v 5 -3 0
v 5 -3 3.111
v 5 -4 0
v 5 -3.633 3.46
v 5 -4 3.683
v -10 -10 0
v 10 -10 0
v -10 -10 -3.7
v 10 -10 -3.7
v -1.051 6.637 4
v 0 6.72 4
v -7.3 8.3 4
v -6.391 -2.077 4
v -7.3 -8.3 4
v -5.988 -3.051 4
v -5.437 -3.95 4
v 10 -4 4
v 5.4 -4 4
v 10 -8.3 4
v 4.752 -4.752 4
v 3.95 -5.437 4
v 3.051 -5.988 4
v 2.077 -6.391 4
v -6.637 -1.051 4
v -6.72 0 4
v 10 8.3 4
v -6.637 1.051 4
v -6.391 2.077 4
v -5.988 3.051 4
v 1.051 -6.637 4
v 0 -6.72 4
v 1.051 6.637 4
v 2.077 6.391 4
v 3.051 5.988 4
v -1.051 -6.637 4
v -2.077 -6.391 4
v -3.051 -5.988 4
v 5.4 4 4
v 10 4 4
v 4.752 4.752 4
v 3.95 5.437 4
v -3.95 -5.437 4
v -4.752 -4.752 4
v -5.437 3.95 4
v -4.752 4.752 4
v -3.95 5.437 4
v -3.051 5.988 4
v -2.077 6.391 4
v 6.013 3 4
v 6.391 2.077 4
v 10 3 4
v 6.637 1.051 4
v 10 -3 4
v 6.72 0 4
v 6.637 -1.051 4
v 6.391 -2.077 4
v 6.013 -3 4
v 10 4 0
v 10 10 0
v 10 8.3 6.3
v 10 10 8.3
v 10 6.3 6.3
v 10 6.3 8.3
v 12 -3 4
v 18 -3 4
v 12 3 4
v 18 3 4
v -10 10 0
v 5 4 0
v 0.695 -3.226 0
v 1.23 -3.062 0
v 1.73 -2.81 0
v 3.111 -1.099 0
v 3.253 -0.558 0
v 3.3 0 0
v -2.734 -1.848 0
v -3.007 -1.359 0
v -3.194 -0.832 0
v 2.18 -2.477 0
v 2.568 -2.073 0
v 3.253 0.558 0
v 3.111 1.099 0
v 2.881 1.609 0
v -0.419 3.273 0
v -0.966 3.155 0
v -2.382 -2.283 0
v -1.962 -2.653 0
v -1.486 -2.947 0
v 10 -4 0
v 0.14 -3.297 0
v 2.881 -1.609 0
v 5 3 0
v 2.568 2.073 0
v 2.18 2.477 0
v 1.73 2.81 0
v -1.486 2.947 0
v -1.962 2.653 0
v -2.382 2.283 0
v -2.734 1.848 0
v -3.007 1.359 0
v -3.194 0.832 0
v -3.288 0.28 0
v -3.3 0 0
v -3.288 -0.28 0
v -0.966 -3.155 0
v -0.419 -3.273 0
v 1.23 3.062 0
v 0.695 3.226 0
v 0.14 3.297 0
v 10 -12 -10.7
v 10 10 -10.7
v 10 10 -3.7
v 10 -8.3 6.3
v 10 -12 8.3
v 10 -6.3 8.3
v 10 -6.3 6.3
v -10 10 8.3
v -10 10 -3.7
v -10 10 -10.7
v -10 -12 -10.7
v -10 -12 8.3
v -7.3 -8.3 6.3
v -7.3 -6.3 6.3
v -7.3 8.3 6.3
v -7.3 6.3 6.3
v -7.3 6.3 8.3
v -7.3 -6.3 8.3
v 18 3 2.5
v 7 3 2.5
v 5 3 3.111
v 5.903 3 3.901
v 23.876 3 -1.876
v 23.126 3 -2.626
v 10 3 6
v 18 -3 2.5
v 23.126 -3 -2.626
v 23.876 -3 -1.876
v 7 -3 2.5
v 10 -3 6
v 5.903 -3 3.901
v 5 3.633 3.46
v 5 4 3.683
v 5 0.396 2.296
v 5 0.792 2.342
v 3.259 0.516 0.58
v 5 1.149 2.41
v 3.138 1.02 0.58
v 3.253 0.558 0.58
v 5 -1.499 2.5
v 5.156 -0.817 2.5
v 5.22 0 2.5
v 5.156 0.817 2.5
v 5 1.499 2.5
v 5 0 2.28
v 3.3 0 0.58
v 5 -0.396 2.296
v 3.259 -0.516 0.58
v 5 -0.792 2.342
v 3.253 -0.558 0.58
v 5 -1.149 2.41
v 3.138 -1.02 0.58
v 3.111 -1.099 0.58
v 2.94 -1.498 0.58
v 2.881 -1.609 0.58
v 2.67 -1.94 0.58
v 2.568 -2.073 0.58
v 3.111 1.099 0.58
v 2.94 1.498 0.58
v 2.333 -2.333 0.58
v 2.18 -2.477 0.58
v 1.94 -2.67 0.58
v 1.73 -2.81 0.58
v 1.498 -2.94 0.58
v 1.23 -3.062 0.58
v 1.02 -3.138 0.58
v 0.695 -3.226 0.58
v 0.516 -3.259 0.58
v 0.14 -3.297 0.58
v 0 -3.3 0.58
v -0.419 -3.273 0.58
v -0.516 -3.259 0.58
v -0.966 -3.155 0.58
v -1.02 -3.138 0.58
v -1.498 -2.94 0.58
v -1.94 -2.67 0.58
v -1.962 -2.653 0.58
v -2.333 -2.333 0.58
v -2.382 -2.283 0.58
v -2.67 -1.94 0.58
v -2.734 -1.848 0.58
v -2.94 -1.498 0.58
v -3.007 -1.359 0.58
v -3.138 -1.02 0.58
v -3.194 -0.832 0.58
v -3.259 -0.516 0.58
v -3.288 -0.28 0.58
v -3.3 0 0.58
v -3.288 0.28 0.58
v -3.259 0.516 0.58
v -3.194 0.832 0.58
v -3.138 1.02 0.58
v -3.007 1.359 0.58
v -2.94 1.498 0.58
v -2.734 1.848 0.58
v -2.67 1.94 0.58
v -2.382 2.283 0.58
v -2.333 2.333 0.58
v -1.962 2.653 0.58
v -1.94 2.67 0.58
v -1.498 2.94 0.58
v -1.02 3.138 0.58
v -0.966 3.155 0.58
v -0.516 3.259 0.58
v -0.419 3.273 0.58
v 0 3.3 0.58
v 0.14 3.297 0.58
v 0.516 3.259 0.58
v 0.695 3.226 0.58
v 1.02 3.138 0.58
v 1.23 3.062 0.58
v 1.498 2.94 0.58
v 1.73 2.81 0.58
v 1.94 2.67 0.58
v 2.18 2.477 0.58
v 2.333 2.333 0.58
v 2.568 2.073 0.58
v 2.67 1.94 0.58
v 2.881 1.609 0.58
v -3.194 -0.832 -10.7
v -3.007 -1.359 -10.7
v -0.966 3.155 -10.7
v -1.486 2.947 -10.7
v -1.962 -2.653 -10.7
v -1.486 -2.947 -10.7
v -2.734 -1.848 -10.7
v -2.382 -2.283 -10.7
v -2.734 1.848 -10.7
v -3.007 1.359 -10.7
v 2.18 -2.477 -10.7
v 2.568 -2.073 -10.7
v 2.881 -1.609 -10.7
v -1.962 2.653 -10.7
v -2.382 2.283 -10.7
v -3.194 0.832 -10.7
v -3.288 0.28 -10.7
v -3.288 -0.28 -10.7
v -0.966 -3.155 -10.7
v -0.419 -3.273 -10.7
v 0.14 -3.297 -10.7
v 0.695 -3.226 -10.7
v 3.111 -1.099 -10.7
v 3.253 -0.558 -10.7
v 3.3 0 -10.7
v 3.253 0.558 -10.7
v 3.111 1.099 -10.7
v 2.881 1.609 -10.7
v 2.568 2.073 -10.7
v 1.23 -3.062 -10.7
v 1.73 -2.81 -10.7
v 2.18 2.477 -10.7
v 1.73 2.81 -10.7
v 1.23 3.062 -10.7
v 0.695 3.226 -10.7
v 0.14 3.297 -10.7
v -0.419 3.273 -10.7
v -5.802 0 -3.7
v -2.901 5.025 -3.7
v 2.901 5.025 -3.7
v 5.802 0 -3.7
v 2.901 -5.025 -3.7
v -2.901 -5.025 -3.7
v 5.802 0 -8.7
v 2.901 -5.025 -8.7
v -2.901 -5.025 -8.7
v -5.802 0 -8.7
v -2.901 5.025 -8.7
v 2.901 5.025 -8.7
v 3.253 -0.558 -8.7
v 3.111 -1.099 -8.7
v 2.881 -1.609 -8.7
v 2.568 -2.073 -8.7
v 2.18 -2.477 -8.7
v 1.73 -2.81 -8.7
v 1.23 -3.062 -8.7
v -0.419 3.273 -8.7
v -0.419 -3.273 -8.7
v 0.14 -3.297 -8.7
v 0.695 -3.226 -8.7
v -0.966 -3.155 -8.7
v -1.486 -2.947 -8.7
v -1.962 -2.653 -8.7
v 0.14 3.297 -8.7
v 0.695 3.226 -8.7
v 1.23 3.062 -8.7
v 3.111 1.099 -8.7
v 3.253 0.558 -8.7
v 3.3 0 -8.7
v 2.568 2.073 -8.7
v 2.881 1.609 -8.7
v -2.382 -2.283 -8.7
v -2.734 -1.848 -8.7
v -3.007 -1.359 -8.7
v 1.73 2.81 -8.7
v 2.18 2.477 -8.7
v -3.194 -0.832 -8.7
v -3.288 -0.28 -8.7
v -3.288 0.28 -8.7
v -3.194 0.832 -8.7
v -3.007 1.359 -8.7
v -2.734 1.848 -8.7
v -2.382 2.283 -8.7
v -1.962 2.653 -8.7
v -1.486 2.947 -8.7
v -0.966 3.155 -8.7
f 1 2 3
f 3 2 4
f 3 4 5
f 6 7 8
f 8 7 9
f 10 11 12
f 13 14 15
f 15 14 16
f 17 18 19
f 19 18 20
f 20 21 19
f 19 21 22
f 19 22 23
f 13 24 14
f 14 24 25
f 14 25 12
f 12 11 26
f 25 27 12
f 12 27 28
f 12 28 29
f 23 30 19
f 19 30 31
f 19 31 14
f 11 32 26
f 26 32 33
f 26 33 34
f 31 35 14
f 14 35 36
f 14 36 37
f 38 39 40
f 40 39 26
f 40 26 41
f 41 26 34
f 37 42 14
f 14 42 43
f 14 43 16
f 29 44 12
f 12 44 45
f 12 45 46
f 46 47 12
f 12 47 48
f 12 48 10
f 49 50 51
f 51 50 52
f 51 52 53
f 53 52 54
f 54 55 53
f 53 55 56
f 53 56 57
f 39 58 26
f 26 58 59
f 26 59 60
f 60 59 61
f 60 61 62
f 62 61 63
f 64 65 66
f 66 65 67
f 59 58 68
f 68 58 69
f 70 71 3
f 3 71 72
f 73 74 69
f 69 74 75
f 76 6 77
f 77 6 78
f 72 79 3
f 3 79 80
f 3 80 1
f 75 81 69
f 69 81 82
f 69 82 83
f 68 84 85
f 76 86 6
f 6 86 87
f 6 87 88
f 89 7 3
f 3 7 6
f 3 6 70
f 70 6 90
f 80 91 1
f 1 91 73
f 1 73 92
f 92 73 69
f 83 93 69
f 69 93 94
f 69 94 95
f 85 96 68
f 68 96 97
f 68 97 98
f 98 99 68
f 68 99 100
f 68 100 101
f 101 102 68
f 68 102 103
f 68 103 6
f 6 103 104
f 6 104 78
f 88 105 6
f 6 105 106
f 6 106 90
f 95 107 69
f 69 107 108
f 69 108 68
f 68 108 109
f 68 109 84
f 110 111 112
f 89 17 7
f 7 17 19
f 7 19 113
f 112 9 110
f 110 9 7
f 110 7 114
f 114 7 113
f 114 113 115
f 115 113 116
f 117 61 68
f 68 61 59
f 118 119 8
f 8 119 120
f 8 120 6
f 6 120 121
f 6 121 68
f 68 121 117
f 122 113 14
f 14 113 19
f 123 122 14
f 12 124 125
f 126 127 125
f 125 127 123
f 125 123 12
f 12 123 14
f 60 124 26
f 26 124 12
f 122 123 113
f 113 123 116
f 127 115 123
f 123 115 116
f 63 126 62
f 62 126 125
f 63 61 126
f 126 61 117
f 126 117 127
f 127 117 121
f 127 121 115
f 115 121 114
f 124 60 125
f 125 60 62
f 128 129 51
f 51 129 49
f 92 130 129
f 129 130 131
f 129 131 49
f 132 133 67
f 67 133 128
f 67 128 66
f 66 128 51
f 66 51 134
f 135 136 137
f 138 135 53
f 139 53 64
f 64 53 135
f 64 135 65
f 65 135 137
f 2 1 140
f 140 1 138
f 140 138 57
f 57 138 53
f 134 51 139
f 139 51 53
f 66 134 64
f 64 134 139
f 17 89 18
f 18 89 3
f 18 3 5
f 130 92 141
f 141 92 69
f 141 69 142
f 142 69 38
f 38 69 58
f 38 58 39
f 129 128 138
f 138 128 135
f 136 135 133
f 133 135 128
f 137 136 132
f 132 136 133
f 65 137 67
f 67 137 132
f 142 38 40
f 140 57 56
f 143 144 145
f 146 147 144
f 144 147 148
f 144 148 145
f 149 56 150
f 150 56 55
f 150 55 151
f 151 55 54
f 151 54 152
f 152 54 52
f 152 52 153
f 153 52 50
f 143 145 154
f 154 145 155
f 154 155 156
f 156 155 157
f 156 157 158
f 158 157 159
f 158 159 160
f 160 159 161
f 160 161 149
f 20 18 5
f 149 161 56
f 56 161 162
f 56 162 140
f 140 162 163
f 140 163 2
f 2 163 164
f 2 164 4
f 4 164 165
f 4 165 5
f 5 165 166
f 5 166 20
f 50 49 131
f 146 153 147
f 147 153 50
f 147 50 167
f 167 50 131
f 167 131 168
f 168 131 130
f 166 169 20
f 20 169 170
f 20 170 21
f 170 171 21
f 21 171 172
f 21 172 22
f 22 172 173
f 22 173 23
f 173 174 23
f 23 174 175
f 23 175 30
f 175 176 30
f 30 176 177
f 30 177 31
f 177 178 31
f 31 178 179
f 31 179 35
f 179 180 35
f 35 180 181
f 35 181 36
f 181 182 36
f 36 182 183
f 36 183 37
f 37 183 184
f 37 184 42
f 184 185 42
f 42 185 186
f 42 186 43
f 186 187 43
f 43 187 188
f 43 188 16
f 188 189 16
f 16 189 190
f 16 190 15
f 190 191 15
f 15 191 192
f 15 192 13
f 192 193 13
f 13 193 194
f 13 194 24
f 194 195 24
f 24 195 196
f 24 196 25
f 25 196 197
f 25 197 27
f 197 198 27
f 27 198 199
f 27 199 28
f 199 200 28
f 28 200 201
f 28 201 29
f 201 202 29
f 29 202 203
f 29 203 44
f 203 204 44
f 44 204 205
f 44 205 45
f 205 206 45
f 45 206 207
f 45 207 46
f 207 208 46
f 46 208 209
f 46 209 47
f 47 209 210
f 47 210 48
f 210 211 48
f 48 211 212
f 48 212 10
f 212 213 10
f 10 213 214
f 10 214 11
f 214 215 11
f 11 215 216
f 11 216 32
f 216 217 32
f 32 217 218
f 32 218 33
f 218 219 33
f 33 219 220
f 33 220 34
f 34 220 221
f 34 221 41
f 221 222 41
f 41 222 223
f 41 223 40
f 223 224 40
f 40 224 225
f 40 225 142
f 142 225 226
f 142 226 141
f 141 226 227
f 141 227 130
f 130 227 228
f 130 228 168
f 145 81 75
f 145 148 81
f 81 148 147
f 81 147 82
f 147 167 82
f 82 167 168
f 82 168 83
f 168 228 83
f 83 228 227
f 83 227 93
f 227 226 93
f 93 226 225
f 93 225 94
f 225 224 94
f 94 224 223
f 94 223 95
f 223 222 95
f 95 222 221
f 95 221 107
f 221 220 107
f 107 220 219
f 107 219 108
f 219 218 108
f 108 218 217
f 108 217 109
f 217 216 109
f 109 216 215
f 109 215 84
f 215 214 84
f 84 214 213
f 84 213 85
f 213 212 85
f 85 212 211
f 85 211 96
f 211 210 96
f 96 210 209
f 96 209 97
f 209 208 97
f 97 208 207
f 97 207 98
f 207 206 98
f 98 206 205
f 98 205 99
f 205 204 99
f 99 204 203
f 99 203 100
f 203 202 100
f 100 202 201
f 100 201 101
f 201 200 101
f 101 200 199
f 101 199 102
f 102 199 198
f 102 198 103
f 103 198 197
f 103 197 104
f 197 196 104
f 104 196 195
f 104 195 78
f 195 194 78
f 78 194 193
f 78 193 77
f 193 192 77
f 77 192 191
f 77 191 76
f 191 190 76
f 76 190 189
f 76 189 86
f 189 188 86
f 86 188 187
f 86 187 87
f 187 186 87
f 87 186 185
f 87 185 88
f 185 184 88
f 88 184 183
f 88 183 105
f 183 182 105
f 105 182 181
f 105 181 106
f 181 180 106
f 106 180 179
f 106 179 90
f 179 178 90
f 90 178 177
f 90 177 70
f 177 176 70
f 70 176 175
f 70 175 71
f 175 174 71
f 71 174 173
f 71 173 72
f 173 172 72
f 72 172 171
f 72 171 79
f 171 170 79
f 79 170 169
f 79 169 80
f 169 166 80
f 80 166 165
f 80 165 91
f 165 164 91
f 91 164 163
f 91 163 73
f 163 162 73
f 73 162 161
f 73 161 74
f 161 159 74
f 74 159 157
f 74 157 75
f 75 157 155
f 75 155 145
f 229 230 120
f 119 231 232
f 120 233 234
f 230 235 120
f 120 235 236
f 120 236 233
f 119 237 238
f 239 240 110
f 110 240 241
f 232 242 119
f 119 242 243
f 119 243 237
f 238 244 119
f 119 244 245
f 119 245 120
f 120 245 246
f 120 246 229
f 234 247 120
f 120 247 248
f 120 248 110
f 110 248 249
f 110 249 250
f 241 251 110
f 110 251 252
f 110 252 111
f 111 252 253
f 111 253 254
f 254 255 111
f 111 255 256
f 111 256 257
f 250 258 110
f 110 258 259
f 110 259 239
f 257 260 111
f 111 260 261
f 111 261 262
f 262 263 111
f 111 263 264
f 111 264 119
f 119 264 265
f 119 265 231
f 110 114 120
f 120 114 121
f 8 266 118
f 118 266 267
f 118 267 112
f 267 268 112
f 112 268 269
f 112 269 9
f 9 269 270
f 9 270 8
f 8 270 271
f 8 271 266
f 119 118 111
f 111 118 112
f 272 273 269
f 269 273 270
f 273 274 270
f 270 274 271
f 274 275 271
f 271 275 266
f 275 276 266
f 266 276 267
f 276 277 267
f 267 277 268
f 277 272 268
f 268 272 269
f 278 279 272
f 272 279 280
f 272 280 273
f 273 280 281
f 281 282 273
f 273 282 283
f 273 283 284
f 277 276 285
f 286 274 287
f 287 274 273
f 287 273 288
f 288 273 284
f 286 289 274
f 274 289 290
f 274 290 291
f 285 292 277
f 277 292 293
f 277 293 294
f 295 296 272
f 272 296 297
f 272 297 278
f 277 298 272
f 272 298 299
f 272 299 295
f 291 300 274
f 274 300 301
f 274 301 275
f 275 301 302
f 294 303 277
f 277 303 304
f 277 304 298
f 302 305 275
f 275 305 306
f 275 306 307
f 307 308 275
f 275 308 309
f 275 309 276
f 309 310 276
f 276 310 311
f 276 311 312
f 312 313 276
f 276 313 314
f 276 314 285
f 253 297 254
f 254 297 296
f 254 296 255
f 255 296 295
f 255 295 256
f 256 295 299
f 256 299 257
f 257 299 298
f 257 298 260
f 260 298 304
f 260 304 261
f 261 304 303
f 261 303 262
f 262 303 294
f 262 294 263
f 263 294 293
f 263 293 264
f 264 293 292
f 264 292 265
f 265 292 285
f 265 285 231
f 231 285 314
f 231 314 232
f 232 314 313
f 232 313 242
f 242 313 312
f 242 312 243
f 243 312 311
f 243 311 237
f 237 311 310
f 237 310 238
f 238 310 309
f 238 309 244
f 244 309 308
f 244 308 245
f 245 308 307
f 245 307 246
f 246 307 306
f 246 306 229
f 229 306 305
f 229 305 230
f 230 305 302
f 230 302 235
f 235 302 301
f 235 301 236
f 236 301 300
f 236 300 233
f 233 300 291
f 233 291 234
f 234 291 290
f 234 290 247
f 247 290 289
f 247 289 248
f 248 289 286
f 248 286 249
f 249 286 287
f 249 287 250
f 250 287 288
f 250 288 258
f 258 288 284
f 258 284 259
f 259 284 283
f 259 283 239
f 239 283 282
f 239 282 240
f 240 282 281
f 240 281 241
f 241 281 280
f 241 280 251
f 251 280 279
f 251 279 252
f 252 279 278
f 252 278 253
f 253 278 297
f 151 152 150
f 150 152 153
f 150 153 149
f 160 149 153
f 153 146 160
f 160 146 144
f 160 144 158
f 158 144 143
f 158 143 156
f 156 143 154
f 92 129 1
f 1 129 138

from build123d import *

# Parameters (mm, degrees)
CROQUIS1_W               = 20
CROQUIS1_H               = 20
CROQUIS1_R               = 3.1
SALIENTE_EXTRUIR1_DEPTH  = 4
SALIENTE_EXTRUIR2_DEPTH  = 2.3
SALIENTE_EXTRUIR4_DEPTH  = 2
SALIENTE_EXTRUIR5_DEPTH  = 4
SALIENTE_EXTRUIR6_START  = -6
SALIENTE_EXTRUIR6_DEPTH  = 6
CROQUIS10_W              = 5
CROQUIS10_H              = 1
CORTAR_EXTRUIR2_DEPTH    = 4
CORTAR_EXTRUIR3_START    = -13
CROQUIS11_W              = 2.5
CROQUIS11_H              = 6
CORTAR_EXTRUIR3_DEPTH    = 13
SALIENTE_EXTRUIR7_START  = -6
SALIENTE_EXTRUIR7_DEPTH  = 6
CROQUIS14_W              = 20
CROQUIS14_H              = 19
SALIENTE_EXTRUIR8_DEPTH  = 2
CROQUIS15_W              = 20
CROQUIS15_H              = 7
SALIENTE_EXTRUIR9_DEPTH  = 20
CORTAR_EXTRUIR4_DEPTH    = 5
CROQUIS17_R              = 3.3
CORTAR_EXTRUIR5_DEPTH    = 2
SALIENTE_EXTRUIR10_START = -6
SALIENTE_EXTRUIR10_DEPTH = 6


with BuildPart() as part:
    # Croquis1 → Saliente-Extruir1 (new body)
    with BuildSketch(Plane.XY):
        Rectangle(CROQUIS1_W, CROQUIS1_H)
        Circle(CROQUIS1_R, mode=Mode.SUBTRACT)
    extrude(amount=SALIENTE_EXTRUIR1_DEPTH)

    # Croquis3 → Saliente-Extruir2 (add)
    with BuildSketch(Plane.XY.offset(4)):
        Polygon((10, 10), (-10, 10), (-10, -10), (10, -10), (10, -8.3), (-7.3, -8.3), (-7.3, 8.3), (10, 8.3), align=None)
    extrude(amount=SALIENTE_EXTRUIR2_DEPTH)

    # Croquis6 → Saliente-Extruir4 (add)
    with BuildSketch(Plane.XY.offset(6.3)):
        Polygon((10, 10), (10, 6.3), (-7.3, 6.3), (-7.3, -6.3), (10, -6.3), (10, -10), (-10, -10), (-10, 10), align=None)
    extrude(amount=SALIENTE_EXTRUIR4_DEPTH)

    # Croquis7 → Saliente-Extruir5 (add)
    with BuildSketch(Plane.XY.offset(4)):
        Polygon((10, 0), (10, 3), (18, 3), (18, 0), (18, -3), (10, -3), align=None)
    extrude(amount=-SALIENTE_EXTRUIR5_DEPTH)

    # Croquis9 → Saliente-Extruir6 (add)
    with BuildSketch(Plane.XZ.offset(3).offset(SALIENTE_EXTRUIR6_START)):
        Polygon((12, 4), (10, 6), (10, 4), align=None)
    extrude(amount=SALIENTE_EXTRUIR6_DEPTH)

    # Croquis10 → Cortar-Extruir2 (cut)
    with BuildSketch(Plane.XY.offset(4)):
        with Locations((7.5, 3.5)):
            Rectangle(CROQUIS10_W, CROQUIS10_H)
        with Locations((7.5, -3.5)):
            Rectangle(CROQUIS10_W, CROQUIS10_H)
    extrude(amount=-CORTAR_EXTRUIR2_DEPTH, mode=Mode.SUBTRACT)

    # Croquis11 → Cortar-Extruir3 (cut)
    with BuildSketch(Plane(origin=(18, 0, 0), x_dir=(0, 0, -1), z_dir=(1, 0, 0)).offset(CORTAR_EXTRUIR3_START)):
        with Locations((-1.25, 0)):
            Rectangle(CROQUIS11_W, CROQUIS11_H)
    extrude(amount=CORTAR_EXTRUIR3_DEPTH, mode=Mode.SUBTRACT)

    # Croquis12 → Saliente-Extruir7 (add)
    with BuildSketch(Plane(origin=(0, 3, 0), x_dir=(1, 0, 0), z_dir=(0, 1, 0)).offset(SALIENTE_EXTRUIR7_START)):
        Polygon((18, -2.5), (23.125934171, 2.625934171), (23.875934171, 1.875934171), (18, -4), align=None)
    extrude(amount=SALIENTE_EXTRUIR7_DEPTH)

    # Croquis13 → Refrentado para tornillo tapón con cabeza plana de clavija de M61 (revolve, cut)
    with BuildSketch(Plane(origin=(0, 0, 4), x_dir=(0, -1, 0), z_dir=(1, 0, 0))):
        Polygon((0, 0), (0, 6.625934171), (3.3, 6.625934171), (3.3, 3.42), (6.72, 0), align=None)
    revolve(axis=Axis((0, 0, 10.35), (0, 0, -1)), mode=Mode.SUBTRACT)

    # Croquis14 → Saliente-Extruir8 (add)
    with BuildSketch(Plane.XZ.offset(10)):
        with Locations((0, -1.2)):
            Rectangle(CROQUIS14_W, CROQUIS14_H)
    extrude(amount=SALIENTE_EXTRUIR8_DEPTH)

    # Croquis15 → Saliente-Extruir9 (add)
    with BuildSketch(Plane(origin=(0, -10, 0), x_dir=(1, 0, 0), z_dir=(0, 1, 0))):
        with Locations((0, 7.2)):
            Rectangle(CROQUIS15_W, CROQUIS15_H)
    extrude(amount=SALIENTE_EXTRUIR9_DEPTH)

    # Croquis16 → Cortar-Extruir4 (cut)
    with BuildSketch(Plane.XY.offset(-3.7)):
        Polygon((5.802370205, 0), (2.901185103, 5.025), (-2.901185103, 5.025), (-5.802370205, 0), (-2.901185103, -5.025), (2.901185103, -5.025), align=None)
    extrude(amount=-CORTAR_EXTRUIR4_DEPTH, mode=Mode.SUBTRACT)

    # Croquis17 → Cortar-Extruir5 (cut)
    with BuildSketch(Plane.XY.offset(-8.7)):
        Circle(CROQUIS17_R)
    extrude(amount=-CORTAR_EXTRUIR5_DEPTH, mode=Mode.SUBTRACT)

    # Croquis19 → Saliente-Extruir10 (add)
    with BuildSketch(Plane.XZ.offset(3).offset(SALIENTE_EXTRUIR10_START)):
        Polygon((5, 2.5), (7, 2.5), (5, 0), align=None)
    extrude(amount=SALIENTE_EXTRUIR10_DEPTH)


solid = part.part
